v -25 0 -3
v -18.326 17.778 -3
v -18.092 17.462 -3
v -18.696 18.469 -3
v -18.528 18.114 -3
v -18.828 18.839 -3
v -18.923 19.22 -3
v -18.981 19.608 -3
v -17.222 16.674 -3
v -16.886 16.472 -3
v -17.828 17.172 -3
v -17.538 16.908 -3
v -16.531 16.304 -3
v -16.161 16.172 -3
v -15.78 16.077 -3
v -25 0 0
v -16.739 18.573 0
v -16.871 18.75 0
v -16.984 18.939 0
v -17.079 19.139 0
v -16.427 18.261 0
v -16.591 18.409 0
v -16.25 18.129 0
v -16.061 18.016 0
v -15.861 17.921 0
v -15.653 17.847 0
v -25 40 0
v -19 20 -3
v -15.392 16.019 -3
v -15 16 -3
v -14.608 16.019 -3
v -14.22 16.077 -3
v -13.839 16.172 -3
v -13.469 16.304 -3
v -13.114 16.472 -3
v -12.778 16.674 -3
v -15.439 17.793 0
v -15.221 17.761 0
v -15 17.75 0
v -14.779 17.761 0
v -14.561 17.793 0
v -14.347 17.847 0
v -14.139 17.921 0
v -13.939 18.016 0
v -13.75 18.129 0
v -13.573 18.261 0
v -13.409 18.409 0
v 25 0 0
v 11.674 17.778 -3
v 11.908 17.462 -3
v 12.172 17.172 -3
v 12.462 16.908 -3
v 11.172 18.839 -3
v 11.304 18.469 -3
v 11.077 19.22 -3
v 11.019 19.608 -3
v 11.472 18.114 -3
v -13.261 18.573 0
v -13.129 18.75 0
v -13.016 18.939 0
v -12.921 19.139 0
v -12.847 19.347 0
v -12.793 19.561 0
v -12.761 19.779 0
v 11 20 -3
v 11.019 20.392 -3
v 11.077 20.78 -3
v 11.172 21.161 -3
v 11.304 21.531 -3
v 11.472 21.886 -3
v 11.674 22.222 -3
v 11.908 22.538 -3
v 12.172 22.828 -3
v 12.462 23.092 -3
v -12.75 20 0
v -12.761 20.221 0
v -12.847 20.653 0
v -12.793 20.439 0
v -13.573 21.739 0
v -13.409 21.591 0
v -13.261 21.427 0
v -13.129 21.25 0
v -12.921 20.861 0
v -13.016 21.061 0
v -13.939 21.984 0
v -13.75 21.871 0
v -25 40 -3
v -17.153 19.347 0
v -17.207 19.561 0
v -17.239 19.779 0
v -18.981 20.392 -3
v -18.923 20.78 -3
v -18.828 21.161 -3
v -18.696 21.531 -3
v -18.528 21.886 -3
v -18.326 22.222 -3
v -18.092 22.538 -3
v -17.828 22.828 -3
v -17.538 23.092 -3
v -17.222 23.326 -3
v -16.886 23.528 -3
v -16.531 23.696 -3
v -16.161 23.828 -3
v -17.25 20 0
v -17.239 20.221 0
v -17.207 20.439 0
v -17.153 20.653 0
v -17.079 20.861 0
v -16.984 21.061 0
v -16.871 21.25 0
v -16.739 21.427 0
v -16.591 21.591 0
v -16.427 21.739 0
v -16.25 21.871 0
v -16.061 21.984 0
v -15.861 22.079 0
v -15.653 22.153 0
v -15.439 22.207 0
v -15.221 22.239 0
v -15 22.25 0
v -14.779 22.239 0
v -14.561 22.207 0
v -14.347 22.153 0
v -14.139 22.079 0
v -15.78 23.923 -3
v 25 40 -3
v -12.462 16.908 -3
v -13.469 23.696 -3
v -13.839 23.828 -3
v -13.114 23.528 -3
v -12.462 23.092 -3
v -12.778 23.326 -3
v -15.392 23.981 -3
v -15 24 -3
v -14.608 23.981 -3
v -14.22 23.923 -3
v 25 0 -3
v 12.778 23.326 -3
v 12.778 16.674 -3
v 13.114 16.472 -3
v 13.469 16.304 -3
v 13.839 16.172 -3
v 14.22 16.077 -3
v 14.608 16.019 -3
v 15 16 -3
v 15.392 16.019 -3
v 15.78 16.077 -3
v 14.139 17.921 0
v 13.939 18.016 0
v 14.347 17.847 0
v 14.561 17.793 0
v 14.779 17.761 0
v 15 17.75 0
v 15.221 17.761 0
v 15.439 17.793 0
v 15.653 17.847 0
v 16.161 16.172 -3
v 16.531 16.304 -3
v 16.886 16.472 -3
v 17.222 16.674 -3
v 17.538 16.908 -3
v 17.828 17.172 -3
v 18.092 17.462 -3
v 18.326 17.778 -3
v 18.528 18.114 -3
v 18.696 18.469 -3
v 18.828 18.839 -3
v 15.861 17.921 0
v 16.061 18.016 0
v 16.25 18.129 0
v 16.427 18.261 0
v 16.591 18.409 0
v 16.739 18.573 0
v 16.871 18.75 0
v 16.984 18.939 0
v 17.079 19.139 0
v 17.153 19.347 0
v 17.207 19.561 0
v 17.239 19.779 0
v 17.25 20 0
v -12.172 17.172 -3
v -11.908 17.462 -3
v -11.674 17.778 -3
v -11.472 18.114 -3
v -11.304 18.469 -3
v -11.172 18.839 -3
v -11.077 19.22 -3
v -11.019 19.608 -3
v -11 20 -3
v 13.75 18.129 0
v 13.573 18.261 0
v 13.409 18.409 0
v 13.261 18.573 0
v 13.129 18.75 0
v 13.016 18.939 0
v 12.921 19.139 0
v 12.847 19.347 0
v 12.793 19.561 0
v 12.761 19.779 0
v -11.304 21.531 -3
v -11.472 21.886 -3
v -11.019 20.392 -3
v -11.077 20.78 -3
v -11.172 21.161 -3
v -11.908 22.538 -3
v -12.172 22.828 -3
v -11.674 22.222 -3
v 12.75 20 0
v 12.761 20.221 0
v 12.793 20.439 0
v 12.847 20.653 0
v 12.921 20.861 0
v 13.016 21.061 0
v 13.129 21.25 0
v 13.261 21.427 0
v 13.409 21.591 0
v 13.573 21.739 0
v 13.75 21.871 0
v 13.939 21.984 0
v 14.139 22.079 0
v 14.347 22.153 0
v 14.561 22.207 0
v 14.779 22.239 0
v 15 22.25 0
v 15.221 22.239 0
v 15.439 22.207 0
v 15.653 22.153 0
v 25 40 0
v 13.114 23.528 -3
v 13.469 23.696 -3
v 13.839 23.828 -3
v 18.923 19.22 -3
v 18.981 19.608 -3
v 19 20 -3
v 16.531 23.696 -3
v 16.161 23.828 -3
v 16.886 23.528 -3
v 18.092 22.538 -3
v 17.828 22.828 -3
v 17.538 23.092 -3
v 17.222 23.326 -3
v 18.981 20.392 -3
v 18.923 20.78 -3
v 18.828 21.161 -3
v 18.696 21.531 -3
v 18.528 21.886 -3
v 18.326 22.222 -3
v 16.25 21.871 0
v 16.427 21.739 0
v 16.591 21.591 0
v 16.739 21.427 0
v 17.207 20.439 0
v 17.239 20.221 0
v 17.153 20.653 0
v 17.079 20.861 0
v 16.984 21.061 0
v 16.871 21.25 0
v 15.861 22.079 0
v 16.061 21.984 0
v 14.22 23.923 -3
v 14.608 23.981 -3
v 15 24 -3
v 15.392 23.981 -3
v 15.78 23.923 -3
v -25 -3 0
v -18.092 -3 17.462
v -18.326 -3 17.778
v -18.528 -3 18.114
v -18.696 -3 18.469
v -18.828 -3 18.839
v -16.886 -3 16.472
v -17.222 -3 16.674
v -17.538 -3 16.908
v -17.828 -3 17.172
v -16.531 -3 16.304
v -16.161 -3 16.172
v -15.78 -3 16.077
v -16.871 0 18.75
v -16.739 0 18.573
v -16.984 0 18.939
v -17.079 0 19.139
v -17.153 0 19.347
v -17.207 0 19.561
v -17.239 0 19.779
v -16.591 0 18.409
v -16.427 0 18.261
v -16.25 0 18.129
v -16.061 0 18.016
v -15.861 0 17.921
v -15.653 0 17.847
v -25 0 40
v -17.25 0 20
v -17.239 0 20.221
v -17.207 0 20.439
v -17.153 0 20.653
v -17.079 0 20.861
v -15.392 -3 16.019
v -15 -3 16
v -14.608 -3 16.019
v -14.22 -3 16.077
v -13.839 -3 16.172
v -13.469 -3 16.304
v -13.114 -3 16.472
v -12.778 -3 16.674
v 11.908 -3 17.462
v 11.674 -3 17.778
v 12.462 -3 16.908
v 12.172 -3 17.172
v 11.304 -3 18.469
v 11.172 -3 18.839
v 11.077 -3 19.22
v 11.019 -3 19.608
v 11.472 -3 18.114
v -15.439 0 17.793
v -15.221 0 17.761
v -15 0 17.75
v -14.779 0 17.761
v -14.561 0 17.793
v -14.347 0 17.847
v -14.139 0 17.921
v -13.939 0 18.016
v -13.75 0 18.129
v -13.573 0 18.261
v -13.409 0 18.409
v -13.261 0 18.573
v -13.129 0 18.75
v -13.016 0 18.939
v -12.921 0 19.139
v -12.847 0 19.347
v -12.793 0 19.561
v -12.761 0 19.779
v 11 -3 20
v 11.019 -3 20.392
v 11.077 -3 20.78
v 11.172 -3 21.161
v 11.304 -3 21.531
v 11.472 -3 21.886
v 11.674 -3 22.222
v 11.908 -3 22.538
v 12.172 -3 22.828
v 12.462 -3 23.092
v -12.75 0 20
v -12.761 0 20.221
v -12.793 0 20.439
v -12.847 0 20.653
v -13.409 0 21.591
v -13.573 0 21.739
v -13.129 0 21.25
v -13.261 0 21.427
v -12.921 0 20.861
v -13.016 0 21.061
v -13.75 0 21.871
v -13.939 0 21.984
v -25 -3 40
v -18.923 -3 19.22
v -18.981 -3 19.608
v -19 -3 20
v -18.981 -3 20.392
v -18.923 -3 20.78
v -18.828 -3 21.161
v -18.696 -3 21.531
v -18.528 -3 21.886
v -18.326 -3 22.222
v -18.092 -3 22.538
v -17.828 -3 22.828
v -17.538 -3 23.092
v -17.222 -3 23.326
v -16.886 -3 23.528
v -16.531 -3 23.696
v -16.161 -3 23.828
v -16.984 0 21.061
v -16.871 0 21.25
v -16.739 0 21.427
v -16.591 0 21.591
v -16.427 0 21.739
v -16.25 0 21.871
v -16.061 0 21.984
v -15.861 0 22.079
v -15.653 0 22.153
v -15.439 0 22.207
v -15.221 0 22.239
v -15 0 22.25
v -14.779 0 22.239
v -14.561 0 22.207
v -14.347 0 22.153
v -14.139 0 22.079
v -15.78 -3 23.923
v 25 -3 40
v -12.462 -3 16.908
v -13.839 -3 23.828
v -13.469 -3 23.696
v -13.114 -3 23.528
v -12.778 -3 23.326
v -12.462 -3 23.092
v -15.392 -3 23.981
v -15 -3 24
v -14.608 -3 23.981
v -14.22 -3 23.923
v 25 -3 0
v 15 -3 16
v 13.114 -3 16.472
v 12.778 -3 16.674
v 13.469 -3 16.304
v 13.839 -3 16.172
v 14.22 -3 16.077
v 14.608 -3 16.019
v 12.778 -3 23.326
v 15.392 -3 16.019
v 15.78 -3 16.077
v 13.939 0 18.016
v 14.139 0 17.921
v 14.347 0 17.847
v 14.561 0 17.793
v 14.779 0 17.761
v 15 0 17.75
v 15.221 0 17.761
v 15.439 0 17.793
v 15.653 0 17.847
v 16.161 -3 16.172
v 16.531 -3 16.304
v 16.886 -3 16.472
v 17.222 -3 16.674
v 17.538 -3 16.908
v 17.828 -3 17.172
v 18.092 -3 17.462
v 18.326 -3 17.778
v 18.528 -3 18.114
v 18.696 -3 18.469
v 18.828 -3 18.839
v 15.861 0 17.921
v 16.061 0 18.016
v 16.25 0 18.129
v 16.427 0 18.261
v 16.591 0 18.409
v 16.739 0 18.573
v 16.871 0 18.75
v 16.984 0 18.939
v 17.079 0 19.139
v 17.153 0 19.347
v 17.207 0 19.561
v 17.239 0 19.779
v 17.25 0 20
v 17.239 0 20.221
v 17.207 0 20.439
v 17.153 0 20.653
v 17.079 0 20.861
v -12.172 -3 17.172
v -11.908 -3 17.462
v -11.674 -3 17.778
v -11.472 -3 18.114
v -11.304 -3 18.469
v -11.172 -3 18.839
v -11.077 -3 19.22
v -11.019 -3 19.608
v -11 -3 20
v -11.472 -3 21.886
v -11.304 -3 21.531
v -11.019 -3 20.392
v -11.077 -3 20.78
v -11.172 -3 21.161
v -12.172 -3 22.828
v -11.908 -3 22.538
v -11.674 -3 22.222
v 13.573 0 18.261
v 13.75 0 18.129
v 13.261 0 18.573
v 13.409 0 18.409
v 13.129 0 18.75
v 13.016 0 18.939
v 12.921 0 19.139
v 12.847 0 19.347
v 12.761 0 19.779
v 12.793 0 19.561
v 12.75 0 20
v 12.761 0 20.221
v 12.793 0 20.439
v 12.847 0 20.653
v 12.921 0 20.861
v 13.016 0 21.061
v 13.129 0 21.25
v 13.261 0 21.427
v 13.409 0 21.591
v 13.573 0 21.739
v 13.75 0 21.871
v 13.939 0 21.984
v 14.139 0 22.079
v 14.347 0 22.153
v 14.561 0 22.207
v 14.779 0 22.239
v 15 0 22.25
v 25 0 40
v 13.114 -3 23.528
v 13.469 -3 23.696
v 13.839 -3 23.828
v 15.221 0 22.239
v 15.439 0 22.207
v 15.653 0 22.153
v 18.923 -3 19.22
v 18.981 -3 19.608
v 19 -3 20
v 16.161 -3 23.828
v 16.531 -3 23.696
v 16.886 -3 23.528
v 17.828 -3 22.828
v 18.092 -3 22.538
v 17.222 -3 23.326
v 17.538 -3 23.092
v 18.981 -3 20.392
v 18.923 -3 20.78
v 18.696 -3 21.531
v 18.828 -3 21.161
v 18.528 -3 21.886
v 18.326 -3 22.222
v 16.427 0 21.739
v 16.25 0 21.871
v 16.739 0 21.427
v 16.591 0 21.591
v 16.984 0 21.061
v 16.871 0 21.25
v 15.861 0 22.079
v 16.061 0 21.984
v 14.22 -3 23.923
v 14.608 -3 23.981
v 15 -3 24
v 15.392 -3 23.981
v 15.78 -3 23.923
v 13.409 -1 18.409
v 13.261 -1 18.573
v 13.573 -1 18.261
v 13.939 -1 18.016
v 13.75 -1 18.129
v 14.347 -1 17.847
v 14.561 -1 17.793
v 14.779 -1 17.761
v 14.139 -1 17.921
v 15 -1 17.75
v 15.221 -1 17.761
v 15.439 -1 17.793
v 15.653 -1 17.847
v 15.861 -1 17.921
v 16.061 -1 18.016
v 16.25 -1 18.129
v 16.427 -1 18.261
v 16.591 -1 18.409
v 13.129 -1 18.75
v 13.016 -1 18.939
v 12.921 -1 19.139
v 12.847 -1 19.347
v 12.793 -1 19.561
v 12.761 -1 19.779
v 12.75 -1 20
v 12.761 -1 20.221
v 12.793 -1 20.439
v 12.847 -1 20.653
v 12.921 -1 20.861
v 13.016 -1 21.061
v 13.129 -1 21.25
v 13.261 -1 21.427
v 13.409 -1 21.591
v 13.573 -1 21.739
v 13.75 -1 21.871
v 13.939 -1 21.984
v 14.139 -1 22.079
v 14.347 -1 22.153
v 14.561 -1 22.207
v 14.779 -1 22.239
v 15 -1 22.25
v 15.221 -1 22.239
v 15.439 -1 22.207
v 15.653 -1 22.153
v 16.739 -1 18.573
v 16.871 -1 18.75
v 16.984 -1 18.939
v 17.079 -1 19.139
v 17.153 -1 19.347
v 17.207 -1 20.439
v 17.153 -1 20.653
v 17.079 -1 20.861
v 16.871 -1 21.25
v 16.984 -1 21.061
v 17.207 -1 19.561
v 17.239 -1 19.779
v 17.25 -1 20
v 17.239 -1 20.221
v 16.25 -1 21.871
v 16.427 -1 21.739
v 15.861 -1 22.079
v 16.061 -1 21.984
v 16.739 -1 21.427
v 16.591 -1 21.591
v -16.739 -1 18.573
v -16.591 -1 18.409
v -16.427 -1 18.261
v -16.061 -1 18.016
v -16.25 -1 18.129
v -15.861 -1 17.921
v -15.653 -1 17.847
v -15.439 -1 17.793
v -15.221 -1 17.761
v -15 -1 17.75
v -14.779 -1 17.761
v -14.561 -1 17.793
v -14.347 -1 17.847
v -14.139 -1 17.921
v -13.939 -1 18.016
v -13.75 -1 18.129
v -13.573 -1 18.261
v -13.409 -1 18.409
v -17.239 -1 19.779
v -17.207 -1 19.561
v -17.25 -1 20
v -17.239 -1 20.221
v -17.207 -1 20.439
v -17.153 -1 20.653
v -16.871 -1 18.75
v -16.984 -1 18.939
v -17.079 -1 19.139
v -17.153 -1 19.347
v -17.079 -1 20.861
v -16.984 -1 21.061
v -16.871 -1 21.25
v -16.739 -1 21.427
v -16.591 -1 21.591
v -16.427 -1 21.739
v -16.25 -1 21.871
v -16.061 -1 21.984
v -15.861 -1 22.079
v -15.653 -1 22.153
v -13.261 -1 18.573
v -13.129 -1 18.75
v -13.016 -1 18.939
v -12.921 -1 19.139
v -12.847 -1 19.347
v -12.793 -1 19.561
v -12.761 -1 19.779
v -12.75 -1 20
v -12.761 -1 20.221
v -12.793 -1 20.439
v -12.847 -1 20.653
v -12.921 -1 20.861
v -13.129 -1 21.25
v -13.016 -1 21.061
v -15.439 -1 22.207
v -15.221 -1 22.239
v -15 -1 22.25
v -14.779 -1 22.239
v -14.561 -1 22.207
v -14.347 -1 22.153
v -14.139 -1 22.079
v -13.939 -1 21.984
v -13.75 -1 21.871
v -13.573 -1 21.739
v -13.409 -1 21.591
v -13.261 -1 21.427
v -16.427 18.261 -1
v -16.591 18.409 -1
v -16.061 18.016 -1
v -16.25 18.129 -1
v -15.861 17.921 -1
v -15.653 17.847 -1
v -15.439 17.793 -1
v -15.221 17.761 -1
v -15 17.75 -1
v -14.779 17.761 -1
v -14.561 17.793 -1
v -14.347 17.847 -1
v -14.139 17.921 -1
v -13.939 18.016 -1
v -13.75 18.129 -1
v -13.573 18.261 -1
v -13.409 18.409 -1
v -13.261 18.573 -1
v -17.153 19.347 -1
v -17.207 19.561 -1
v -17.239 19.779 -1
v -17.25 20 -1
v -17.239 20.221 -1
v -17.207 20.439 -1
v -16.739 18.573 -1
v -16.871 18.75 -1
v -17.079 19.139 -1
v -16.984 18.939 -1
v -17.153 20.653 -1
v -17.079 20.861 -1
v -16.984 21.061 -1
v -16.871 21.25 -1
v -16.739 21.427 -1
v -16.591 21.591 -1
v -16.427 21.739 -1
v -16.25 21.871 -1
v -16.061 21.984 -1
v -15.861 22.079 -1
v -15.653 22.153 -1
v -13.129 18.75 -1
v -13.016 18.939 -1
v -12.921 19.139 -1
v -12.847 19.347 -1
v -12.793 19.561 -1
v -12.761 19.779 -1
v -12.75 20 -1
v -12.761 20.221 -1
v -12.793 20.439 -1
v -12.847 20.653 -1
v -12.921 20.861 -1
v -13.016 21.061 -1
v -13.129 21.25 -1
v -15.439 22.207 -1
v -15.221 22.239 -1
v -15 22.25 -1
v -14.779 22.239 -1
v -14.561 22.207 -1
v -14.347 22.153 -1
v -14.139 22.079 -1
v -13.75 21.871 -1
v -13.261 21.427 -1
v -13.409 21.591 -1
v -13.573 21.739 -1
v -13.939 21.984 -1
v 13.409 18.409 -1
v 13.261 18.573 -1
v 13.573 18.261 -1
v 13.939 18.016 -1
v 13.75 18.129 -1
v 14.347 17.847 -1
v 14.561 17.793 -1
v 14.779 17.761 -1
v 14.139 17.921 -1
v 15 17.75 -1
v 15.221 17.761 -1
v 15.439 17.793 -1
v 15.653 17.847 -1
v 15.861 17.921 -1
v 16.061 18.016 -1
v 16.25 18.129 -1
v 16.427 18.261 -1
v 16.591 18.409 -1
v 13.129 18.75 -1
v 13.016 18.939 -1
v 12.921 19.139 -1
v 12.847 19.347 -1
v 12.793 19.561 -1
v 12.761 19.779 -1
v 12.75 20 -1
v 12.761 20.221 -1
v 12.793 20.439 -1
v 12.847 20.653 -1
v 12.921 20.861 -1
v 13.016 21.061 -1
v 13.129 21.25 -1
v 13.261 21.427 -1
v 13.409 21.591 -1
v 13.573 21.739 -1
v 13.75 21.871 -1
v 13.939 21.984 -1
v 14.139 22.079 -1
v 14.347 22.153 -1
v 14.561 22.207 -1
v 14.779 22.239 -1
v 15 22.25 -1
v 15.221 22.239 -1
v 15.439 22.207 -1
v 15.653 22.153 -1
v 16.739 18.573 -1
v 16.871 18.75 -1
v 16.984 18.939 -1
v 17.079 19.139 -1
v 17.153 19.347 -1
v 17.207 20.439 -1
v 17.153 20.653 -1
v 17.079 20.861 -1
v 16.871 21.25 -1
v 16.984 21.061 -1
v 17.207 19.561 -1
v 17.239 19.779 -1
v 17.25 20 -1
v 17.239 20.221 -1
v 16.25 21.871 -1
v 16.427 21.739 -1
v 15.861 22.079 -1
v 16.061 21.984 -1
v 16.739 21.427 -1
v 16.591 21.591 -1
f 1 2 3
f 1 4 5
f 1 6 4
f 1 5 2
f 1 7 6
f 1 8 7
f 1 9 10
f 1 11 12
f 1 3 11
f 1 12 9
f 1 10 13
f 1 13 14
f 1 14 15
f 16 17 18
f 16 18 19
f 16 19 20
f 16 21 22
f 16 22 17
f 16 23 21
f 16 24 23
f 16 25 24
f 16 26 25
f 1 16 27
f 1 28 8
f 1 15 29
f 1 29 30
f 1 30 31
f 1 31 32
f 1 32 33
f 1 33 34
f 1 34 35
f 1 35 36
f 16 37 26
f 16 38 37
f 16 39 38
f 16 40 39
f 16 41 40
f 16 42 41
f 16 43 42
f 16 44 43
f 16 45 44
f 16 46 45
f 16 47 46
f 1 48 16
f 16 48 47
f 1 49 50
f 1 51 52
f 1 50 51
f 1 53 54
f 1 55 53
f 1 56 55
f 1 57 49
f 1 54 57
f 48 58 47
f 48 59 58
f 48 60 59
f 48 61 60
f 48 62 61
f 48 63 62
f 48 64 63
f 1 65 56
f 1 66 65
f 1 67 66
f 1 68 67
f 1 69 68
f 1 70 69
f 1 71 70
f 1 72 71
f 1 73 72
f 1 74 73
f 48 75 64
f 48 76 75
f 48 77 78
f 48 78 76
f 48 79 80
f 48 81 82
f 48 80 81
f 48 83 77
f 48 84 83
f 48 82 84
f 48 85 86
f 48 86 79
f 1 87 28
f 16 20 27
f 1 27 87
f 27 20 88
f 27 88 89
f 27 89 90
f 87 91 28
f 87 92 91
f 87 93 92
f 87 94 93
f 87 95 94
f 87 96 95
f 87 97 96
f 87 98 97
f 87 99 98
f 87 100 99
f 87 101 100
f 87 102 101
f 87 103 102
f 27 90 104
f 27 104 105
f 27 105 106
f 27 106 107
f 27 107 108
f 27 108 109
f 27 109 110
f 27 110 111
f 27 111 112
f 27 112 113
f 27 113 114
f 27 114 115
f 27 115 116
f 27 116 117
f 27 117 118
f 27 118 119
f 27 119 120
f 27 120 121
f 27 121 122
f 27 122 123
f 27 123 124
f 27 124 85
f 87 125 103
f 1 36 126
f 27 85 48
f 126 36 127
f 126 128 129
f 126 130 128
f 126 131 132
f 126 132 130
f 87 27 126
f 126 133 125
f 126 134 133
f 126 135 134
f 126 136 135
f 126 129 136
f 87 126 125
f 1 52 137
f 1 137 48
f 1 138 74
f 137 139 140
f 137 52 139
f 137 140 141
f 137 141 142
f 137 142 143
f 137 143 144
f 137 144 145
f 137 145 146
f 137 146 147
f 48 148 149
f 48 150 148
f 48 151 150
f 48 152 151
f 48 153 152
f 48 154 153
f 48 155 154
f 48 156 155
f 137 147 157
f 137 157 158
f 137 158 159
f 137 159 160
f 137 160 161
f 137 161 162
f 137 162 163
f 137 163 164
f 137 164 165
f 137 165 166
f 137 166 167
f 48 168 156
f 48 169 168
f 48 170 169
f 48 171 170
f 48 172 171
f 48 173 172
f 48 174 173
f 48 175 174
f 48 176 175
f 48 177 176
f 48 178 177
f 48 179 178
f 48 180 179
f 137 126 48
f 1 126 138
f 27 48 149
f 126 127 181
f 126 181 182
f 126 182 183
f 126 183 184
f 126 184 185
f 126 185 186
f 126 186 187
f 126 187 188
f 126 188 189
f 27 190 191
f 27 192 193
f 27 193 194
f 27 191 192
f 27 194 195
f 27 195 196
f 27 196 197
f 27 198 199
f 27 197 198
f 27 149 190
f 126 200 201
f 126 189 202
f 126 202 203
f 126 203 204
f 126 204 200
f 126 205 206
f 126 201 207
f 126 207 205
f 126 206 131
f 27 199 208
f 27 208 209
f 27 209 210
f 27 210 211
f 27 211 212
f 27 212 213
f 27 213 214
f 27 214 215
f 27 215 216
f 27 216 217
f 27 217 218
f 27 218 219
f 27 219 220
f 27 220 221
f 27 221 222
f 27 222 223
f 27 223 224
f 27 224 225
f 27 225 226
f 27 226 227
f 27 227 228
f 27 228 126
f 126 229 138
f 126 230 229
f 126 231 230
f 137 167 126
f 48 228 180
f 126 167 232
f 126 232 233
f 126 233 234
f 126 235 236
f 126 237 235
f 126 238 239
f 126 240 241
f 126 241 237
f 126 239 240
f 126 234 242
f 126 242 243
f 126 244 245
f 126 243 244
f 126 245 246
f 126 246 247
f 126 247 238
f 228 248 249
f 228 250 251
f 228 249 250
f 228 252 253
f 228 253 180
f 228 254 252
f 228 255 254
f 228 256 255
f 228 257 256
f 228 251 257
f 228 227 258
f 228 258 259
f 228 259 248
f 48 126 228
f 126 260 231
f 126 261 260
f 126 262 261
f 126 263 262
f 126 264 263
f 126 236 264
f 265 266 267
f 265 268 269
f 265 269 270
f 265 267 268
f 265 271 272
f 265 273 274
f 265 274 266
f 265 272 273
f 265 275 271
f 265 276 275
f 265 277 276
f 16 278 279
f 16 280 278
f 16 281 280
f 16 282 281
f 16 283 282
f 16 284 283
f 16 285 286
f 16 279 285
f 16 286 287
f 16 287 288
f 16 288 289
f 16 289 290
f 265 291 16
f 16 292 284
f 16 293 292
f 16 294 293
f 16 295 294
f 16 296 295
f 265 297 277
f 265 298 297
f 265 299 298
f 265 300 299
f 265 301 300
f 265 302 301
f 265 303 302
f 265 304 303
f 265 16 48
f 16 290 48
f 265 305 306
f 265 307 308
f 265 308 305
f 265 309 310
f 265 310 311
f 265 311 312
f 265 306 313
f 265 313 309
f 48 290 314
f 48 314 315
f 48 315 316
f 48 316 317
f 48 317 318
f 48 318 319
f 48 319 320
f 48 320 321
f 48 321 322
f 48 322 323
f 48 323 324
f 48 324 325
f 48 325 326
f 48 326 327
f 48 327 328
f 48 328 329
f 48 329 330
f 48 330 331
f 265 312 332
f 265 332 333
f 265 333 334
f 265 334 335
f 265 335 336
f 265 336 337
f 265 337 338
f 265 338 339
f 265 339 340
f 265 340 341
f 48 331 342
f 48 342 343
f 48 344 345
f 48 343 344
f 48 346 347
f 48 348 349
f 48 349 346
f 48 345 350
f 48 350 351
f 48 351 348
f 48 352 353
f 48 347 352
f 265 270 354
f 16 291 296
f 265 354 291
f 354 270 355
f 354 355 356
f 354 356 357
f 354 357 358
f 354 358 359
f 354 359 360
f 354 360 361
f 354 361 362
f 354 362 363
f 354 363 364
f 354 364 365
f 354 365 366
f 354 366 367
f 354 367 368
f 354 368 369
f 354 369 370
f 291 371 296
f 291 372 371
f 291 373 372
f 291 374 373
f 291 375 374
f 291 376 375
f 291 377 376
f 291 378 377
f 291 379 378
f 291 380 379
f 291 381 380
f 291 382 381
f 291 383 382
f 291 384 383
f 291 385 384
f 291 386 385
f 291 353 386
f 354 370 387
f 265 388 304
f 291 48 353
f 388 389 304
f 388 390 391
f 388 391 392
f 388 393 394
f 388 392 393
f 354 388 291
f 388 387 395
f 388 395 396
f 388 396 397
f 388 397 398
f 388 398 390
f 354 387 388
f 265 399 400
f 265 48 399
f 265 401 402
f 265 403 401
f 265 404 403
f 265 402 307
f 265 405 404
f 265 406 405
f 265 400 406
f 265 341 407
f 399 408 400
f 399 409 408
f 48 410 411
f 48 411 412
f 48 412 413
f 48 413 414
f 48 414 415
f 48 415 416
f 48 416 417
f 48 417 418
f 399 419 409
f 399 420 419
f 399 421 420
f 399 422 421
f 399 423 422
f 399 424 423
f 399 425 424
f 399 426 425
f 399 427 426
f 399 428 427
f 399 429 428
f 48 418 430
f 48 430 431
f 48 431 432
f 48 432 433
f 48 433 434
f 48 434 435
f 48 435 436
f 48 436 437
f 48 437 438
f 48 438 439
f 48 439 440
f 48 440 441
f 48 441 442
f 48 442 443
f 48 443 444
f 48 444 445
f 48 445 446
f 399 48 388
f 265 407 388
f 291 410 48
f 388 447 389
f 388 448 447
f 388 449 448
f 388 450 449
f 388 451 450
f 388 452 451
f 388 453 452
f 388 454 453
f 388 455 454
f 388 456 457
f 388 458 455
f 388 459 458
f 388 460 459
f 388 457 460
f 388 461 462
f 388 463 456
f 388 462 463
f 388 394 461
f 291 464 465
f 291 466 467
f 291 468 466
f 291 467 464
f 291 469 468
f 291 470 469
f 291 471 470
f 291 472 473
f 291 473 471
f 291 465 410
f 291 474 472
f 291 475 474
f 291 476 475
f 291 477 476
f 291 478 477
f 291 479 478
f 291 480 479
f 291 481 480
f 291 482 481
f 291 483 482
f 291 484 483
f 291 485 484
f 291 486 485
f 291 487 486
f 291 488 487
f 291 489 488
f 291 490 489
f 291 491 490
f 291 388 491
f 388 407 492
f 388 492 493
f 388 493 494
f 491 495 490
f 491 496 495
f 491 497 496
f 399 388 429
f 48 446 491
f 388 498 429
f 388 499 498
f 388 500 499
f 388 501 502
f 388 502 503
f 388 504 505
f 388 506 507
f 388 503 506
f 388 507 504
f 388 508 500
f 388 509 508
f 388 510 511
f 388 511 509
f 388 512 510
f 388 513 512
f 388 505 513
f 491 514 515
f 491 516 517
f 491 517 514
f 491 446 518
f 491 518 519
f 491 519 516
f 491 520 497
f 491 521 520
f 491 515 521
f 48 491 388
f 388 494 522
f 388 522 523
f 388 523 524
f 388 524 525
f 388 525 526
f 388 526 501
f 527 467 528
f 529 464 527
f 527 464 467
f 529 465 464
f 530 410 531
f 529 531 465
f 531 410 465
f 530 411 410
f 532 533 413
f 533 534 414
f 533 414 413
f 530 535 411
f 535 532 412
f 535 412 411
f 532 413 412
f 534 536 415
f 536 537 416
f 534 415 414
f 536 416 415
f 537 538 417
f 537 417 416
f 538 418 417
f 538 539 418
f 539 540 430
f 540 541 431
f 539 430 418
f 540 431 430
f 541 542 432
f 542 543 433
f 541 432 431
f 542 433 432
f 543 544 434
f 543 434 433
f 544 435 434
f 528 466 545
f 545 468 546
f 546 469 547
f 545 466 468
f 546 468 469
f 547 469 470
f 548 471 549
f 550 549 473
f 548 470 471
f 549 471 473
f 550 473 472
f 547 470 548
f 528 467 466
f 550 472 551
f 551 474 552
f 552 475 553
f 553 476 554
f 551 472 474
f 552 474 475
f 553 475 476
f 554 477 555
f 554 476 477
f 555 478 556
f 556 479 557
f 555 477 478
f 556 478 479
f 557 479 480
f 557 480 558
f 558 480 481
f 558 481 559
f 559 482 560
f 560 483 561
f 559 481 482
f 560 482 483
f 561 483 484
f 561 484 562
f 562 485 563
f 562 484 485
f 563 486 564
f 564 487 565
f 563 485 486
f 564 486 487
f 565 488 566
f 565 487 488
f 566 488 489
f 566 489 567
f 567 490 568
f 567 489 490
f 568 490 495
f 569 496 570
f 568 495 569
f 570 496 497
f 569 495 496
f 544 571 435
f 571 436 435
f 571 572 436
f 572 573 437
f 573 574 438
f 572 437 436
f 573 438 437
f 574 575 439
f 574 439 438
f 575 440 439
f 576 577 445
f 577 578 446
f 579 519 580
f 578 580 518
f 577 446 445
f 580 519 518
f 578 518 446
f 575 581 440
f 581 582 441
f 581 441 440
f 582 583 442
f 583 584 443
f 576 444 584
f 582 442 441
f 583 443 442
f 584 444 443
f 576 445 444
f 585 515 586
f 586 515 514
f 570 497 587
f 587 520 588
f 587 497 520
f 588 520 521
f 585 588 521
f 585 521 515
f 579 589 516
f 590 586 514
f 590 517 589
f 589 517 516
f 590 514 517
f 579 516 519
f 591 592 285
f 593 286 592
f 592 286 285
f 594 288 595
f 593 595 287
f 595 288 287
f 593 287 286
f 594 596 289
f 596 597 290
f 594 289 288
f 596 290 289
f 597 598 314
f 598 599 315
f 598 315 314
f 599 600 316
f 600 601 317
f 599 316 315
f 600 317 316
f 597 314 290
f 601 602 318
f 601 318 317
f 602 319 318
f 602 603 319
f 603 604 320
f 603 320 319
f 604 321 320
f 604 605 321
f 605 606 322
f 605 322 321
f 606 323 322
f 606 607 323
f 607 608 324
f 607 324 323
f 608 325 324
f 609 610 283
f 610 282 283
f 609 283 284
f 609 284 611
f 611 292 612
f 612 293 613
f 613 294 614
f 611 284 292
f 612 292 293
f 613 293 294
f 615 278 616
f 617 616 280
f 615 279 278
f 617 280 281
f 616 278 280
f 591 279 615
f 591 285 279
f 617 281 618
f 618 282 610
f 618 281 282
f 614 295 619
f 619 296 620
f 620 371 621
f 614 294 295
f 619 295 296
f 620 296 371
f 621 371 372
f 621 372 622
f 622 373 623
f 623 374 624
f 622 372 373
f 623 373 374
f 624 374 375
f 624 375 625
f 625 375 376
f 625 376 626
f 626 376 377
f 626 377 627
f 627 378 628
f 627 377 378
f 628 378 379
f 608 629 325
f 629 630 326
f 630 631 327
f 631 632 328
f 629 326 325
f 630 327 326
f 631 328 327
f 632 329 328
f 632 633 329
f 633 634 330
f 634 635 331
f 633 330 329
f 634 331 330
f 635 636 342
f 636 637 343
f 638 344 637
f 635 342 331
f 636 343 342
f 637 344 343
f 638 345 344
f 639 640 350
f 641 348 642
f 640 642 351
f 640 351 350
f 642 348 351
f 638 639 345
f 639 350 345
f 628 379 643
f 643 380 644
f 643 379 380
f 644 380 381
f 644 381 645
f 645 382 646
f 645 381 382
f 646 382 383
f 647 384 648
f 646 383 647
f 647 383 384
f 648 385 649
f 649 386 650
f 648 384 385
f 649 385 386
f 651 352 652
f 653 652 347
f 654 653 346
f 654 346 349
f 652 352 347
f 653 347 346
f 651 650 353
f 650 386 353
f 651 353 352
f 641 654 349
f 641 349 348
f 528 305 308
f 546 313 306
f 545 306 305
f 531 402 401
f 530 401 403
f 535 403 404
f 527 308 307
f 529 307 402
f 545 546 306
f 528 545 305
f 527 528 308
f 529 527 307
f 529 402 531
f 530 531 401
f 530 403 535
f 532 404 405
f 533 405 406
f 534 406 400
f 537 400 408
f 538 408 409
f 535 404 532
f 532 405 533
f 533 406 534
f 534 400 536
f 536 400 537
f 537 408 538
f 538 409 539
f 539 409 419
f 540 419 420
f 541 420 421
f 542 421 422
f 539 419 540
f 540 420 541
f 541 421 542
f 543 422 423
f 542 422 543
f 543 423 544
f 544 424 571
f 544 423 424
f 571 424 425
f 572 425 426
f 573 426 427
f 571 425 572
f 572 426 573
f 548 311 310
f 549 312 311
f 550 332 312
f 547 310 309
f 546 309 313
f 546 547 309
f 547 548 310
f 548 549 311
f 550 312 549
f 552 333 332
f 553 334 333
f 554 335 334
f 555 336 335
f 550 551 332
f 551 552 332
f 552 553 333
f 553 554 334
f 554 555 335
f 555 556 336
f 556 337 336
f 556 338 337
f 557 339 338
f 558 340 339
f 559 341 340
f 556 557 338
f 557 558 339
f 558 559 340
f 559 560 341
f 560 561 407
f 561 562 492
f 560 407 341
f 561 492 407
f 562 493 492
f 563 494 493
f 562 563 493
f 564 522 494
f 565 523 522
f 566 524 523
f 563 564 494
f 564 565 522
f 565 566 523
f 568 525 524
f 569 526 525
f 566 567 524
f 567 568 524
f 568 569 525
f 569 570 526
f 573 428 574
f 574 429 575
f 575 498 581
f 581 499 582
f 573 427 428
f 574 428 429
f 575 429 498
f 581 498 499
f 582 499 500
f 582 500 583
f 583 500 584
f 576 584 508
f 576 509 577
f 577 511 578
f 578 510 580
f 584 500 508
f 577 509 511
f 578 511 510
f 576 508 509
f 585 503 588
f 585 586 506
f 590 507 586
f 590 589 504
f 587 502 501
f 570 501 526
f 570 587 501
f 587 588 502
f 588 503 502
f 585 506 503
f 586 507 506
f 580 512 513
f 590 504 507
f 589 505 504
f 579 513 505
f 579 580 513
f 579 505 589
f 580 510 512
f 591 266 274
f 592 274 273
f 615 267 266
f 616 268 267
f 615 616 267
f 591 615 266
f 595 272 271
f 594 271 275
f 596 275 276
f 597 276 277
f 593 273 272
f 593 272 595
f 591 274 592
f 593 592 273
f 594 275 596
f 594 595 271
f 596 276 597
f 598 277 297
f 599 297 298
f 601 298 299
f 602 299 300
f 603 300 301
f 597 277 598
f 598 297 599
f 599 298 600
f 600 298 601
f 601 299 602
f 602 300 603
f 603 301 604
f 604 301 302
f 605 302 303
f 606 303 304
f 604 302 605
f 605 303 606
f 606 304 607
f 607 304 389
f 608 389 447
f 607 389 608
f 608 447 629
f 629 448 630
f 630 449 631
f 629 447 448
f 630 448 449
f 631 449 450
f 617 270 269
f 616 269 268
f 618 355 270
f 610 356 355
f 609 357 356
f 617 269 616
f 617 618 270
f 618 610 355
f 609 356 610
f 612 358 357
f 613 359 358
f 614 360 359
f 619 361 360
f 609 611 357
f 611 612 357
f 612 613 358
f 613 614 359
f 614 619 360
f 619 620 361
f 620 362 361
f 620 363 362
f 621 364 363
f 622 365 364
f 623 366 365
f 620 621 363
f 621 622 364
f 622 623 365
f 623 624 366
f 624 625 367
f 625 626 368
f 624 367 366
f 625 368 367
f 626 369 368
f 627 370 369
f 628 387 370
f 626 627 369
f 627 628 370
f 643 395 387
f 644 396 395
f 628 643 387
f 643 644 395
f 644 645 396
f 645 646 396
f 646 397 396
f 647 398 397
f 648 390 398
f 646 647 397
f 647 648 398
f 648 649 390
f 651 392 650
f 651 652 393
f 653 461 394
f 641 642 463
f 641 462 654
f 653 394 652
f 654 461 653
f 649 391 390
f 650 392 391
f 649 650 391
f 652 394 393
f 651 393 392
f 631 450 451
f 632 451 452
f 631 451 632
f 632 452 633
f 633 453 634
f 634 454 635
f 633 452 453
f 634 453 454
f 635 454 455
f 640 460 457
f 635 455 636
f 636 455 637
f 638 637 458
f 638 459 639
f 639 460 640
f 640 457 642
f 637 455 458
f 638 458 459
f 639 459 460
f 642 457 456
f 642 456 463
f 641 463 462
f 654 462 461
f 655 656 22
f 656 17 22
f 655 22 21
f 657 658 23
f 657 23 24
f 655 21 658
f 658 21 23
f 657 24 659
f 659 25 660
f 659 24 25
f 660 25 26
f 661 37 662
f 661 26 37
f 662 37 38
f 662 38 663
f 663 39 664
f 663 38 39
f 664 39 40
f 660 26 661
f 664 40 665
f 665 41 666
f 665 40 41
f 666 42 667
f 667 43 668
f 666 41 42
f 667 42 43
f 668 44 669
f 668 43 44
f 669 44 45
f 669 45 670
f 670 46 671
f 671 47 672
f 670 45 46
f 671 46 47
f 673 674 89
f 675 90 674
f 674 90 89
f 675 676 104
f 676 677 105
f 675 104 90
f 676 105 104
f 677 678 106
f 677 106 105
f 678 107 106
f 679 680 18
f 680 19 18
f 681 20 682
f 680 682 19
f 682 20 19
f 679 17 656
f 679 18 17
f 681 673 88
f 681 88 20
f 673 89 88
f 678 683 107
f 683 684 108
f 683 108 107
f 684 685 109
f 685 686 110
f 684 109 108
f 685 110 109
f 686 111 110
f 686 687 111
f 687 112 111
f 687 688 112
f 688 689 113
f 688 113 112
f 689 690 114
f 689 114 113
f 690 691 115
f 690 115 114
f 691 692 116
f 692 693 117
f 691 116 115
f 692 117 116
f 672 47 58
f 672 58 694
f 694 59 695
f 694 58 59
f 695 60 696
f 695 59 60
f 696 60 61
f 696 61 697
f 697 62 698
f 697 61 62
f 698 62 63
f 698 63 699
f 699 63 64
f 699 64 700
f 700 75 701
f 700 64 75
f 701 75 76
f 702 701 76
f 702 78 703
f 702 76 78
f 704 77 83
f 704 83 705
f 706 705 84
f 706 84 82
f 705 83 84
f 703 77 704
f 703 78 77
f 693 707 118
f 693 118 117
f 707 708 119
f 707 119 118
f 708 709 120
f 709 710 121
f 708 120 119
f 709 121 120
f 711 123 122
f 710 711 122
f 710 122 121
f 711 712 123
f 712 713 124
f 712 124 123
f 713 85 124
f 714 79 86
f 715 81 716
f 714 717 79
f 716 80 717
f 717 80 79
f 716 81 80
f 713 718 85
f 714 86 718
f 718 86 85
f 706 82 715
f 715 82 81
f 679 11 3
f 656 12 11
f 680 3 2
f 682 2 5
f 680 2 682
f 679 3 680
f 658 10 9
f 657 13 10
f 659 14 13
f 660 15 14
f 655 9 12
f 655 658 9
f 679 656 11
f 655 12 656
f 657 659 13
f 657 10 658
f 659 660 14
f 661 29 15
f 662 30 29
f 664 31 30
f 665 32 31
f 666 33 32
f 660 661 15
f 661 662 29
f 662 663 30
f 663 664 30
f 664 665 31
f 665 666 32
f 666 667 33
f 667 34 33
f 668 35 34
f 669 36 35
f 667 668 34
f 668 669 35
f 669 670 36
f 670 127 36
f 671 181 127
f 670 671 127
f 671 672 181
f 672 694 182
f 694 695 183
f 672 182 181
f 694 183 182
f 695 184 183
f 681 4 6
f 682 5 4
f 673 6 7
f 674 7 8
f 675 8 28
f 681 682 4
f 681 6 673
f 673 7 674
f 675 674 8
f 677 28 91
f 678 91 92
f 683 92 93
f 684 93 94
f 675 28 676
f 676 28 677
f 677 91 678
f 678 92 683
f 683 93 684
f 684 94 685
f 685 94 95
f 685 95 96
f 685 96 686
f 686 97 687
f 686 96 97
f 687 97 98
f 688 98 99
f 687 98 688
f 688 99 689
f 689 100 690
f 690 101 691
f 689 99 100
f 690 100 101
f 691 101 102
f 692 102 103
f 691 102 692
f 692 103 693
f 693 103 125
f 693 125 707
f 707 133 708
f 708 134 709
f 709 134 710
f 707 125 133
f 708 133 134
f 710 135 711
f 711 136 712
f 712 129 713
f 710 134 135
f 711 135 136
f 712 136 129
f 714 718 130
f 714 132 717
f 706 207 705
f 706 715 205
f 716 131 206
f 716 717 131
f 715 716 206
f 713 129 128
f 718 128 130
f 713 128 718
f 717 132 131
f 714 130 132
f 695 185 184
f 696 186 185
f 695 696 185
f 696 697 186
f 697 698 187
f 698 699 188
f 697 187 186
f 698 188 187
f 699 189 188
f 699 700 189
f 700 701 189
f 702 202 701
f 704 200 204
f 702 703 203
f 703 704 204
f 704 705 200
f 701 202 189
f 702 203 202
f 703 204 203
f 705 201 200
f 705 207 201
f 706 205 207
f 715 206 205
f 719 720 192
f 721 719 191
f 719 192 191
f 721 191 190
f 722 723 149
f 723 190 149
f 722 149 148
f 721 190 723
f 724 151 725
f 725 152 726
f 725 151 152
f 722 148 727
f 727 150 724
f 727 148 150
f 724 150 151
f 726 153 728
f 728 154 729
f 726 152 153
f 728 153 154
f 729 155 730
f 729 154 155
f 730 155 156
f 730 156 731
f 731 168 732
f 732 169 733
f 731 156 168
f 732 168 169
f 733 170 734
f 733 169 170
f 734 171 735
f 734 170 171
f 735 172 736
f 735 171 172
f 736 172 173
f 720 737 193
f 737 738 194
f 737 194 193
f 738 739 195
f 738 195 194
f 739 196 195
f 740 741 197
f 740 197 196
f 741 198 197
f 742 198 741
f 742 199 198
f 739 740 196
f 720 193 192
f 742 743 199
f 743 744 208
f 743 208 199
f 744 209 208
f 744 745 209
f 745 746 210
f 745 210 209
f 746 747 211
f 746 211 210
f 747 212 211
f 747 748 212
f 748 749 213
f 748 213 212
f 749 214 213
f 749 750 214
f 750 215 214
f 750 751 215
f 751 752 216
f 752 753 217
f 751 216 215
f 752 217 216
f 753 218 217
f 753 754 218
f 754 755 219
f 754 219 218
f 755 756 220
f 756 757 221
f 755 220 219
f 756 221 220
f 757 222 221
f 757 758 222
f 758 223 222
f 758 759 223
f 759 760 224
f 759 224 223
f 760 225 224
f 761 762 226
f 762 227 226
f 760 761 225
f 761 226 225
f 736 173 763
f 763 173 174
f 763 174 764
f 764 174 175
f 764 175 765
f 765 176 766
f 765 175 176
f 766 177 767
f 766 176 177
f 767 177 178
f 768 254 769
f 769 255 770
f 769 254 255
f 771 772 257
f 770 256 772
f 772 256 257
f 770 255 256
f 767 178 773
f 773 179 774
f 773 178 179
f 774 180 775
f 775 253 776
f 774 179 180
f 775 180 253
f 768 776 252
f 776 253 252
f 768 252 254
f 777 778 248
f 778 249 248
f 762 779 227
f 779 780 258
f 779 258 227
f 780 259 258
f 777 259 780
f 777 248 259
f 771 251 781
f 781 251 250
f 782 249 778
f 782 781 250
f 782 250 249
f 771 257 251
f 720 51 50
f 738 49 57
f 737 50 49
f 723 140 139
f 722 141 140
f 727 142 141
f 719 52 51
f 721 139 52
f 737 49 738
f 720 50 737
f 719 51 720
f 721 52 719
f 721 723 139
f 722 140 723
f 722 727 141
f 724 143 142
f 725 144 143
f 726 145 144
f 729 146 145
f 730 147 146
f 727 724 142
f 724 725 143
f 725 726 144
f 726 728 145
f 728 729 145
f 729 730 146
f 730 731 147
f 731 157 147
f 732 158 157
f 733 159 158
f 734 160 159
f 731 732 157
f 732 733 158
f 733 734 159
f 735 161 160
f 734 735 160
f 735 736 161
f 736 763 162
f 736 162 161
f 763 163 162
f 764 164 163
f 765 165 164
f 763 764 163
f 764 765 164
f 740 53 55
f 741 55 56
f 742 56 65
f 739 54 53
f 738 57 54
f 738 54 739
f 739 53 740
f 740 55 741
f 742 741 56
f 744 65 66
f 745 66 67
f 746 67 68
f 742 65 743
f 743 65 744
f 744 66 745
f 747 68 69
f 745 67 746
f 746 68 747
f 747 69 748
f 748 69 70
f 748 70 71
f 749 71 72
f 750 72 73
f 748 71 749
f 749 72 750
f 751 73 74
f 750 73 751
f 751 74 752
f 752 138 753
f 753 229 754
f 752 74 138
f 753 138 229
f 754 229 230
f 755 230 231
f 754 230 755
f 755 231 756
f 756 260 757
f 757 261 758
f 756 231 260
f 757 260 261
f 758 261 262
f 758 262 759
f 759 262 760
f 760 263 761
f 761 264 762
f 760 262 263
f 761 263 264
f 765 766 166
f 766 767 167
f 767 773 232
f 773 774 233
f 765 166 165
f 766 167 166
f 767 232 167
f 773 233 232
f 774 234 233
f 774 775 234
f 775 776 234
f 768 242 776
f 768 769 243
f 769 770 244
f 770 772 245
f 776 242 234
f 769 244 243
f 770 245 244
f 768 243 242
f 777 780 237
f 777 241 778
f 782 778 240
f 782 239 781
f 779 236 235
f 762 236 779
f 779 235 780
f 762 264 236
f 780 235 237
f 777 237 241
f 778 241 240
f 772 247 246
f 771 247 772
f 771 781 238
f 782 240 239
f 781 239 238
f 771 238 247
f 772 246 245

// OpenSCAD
$fn = 64;

width = 50;
flange_length = 40;
thickness = 3;

hole_diameter = 4.5;
countersink_diameter = 8;
countersink_depth = 2;

hole_x = [-width / 2 + 10, width / 2 - 10];

difference() {
    union() {
        // 内側コーナーを Y=0, Z=0 に配置
        translate([-width / 2, 0, -thickness])
            cube([width, flange_length, thickness]);

        translate([-width / 2, -thickness, 0])
            cube([width, thickness, flange_length]);
    }

    for (x = hole_x) {
        // 水平面：外側（下面）に皿座面
        translate([x, flange_length / 2, -thickness])
            cylinder(h = thickness, d = hole_diameter);

        translate([x, flange_length / 2, -thickness])
            cylinder(
                h = countersink_depth,
                d1 = countersink_diameter,
                d2 = hole_diameter
            );

        // 垂直面：外側（背面）に皿座面
        translate([x, -thickness, flange_length / 2])
            rotate([-90, 0, 0]) {
                cylinder(h = thickness, d = hole_diameter);
                cylinder(
                    h = countersink_depth,
                    d1 = countersink_diameter,
                    d2 = hole_diameter
                );
            }
    }
}
